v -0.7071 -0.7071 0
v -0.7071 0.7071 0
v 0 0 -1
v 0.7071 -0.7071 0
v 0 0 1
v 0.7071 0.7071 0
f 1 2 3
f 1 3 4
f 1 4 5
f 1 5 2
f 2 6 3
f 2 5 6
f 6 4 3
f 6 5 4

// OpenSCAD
polyhedron( points = [[-0.707106781160094, -0.707106781213002, 0.0], [-0.7071067810966, 0.707106781209727, 0.0], [0.707106781072165, 0.707106781209727, 0.0], [0.707106781135653, -0.707106781213002, 0.0], [2.44375470626012e-11, 3.2756838963728e-12, -0.999999999915912], [2.44389601458139e-11, 3.27427081316006e-12, 0.999999999915912]], faces = [[0, 1, 4], [0, 4, 3], [0, 3, 5], [0, 5, 1], [1, 2, 4], [1, 5, 2], [2, 3, 4], [2, 5, 3]]);
